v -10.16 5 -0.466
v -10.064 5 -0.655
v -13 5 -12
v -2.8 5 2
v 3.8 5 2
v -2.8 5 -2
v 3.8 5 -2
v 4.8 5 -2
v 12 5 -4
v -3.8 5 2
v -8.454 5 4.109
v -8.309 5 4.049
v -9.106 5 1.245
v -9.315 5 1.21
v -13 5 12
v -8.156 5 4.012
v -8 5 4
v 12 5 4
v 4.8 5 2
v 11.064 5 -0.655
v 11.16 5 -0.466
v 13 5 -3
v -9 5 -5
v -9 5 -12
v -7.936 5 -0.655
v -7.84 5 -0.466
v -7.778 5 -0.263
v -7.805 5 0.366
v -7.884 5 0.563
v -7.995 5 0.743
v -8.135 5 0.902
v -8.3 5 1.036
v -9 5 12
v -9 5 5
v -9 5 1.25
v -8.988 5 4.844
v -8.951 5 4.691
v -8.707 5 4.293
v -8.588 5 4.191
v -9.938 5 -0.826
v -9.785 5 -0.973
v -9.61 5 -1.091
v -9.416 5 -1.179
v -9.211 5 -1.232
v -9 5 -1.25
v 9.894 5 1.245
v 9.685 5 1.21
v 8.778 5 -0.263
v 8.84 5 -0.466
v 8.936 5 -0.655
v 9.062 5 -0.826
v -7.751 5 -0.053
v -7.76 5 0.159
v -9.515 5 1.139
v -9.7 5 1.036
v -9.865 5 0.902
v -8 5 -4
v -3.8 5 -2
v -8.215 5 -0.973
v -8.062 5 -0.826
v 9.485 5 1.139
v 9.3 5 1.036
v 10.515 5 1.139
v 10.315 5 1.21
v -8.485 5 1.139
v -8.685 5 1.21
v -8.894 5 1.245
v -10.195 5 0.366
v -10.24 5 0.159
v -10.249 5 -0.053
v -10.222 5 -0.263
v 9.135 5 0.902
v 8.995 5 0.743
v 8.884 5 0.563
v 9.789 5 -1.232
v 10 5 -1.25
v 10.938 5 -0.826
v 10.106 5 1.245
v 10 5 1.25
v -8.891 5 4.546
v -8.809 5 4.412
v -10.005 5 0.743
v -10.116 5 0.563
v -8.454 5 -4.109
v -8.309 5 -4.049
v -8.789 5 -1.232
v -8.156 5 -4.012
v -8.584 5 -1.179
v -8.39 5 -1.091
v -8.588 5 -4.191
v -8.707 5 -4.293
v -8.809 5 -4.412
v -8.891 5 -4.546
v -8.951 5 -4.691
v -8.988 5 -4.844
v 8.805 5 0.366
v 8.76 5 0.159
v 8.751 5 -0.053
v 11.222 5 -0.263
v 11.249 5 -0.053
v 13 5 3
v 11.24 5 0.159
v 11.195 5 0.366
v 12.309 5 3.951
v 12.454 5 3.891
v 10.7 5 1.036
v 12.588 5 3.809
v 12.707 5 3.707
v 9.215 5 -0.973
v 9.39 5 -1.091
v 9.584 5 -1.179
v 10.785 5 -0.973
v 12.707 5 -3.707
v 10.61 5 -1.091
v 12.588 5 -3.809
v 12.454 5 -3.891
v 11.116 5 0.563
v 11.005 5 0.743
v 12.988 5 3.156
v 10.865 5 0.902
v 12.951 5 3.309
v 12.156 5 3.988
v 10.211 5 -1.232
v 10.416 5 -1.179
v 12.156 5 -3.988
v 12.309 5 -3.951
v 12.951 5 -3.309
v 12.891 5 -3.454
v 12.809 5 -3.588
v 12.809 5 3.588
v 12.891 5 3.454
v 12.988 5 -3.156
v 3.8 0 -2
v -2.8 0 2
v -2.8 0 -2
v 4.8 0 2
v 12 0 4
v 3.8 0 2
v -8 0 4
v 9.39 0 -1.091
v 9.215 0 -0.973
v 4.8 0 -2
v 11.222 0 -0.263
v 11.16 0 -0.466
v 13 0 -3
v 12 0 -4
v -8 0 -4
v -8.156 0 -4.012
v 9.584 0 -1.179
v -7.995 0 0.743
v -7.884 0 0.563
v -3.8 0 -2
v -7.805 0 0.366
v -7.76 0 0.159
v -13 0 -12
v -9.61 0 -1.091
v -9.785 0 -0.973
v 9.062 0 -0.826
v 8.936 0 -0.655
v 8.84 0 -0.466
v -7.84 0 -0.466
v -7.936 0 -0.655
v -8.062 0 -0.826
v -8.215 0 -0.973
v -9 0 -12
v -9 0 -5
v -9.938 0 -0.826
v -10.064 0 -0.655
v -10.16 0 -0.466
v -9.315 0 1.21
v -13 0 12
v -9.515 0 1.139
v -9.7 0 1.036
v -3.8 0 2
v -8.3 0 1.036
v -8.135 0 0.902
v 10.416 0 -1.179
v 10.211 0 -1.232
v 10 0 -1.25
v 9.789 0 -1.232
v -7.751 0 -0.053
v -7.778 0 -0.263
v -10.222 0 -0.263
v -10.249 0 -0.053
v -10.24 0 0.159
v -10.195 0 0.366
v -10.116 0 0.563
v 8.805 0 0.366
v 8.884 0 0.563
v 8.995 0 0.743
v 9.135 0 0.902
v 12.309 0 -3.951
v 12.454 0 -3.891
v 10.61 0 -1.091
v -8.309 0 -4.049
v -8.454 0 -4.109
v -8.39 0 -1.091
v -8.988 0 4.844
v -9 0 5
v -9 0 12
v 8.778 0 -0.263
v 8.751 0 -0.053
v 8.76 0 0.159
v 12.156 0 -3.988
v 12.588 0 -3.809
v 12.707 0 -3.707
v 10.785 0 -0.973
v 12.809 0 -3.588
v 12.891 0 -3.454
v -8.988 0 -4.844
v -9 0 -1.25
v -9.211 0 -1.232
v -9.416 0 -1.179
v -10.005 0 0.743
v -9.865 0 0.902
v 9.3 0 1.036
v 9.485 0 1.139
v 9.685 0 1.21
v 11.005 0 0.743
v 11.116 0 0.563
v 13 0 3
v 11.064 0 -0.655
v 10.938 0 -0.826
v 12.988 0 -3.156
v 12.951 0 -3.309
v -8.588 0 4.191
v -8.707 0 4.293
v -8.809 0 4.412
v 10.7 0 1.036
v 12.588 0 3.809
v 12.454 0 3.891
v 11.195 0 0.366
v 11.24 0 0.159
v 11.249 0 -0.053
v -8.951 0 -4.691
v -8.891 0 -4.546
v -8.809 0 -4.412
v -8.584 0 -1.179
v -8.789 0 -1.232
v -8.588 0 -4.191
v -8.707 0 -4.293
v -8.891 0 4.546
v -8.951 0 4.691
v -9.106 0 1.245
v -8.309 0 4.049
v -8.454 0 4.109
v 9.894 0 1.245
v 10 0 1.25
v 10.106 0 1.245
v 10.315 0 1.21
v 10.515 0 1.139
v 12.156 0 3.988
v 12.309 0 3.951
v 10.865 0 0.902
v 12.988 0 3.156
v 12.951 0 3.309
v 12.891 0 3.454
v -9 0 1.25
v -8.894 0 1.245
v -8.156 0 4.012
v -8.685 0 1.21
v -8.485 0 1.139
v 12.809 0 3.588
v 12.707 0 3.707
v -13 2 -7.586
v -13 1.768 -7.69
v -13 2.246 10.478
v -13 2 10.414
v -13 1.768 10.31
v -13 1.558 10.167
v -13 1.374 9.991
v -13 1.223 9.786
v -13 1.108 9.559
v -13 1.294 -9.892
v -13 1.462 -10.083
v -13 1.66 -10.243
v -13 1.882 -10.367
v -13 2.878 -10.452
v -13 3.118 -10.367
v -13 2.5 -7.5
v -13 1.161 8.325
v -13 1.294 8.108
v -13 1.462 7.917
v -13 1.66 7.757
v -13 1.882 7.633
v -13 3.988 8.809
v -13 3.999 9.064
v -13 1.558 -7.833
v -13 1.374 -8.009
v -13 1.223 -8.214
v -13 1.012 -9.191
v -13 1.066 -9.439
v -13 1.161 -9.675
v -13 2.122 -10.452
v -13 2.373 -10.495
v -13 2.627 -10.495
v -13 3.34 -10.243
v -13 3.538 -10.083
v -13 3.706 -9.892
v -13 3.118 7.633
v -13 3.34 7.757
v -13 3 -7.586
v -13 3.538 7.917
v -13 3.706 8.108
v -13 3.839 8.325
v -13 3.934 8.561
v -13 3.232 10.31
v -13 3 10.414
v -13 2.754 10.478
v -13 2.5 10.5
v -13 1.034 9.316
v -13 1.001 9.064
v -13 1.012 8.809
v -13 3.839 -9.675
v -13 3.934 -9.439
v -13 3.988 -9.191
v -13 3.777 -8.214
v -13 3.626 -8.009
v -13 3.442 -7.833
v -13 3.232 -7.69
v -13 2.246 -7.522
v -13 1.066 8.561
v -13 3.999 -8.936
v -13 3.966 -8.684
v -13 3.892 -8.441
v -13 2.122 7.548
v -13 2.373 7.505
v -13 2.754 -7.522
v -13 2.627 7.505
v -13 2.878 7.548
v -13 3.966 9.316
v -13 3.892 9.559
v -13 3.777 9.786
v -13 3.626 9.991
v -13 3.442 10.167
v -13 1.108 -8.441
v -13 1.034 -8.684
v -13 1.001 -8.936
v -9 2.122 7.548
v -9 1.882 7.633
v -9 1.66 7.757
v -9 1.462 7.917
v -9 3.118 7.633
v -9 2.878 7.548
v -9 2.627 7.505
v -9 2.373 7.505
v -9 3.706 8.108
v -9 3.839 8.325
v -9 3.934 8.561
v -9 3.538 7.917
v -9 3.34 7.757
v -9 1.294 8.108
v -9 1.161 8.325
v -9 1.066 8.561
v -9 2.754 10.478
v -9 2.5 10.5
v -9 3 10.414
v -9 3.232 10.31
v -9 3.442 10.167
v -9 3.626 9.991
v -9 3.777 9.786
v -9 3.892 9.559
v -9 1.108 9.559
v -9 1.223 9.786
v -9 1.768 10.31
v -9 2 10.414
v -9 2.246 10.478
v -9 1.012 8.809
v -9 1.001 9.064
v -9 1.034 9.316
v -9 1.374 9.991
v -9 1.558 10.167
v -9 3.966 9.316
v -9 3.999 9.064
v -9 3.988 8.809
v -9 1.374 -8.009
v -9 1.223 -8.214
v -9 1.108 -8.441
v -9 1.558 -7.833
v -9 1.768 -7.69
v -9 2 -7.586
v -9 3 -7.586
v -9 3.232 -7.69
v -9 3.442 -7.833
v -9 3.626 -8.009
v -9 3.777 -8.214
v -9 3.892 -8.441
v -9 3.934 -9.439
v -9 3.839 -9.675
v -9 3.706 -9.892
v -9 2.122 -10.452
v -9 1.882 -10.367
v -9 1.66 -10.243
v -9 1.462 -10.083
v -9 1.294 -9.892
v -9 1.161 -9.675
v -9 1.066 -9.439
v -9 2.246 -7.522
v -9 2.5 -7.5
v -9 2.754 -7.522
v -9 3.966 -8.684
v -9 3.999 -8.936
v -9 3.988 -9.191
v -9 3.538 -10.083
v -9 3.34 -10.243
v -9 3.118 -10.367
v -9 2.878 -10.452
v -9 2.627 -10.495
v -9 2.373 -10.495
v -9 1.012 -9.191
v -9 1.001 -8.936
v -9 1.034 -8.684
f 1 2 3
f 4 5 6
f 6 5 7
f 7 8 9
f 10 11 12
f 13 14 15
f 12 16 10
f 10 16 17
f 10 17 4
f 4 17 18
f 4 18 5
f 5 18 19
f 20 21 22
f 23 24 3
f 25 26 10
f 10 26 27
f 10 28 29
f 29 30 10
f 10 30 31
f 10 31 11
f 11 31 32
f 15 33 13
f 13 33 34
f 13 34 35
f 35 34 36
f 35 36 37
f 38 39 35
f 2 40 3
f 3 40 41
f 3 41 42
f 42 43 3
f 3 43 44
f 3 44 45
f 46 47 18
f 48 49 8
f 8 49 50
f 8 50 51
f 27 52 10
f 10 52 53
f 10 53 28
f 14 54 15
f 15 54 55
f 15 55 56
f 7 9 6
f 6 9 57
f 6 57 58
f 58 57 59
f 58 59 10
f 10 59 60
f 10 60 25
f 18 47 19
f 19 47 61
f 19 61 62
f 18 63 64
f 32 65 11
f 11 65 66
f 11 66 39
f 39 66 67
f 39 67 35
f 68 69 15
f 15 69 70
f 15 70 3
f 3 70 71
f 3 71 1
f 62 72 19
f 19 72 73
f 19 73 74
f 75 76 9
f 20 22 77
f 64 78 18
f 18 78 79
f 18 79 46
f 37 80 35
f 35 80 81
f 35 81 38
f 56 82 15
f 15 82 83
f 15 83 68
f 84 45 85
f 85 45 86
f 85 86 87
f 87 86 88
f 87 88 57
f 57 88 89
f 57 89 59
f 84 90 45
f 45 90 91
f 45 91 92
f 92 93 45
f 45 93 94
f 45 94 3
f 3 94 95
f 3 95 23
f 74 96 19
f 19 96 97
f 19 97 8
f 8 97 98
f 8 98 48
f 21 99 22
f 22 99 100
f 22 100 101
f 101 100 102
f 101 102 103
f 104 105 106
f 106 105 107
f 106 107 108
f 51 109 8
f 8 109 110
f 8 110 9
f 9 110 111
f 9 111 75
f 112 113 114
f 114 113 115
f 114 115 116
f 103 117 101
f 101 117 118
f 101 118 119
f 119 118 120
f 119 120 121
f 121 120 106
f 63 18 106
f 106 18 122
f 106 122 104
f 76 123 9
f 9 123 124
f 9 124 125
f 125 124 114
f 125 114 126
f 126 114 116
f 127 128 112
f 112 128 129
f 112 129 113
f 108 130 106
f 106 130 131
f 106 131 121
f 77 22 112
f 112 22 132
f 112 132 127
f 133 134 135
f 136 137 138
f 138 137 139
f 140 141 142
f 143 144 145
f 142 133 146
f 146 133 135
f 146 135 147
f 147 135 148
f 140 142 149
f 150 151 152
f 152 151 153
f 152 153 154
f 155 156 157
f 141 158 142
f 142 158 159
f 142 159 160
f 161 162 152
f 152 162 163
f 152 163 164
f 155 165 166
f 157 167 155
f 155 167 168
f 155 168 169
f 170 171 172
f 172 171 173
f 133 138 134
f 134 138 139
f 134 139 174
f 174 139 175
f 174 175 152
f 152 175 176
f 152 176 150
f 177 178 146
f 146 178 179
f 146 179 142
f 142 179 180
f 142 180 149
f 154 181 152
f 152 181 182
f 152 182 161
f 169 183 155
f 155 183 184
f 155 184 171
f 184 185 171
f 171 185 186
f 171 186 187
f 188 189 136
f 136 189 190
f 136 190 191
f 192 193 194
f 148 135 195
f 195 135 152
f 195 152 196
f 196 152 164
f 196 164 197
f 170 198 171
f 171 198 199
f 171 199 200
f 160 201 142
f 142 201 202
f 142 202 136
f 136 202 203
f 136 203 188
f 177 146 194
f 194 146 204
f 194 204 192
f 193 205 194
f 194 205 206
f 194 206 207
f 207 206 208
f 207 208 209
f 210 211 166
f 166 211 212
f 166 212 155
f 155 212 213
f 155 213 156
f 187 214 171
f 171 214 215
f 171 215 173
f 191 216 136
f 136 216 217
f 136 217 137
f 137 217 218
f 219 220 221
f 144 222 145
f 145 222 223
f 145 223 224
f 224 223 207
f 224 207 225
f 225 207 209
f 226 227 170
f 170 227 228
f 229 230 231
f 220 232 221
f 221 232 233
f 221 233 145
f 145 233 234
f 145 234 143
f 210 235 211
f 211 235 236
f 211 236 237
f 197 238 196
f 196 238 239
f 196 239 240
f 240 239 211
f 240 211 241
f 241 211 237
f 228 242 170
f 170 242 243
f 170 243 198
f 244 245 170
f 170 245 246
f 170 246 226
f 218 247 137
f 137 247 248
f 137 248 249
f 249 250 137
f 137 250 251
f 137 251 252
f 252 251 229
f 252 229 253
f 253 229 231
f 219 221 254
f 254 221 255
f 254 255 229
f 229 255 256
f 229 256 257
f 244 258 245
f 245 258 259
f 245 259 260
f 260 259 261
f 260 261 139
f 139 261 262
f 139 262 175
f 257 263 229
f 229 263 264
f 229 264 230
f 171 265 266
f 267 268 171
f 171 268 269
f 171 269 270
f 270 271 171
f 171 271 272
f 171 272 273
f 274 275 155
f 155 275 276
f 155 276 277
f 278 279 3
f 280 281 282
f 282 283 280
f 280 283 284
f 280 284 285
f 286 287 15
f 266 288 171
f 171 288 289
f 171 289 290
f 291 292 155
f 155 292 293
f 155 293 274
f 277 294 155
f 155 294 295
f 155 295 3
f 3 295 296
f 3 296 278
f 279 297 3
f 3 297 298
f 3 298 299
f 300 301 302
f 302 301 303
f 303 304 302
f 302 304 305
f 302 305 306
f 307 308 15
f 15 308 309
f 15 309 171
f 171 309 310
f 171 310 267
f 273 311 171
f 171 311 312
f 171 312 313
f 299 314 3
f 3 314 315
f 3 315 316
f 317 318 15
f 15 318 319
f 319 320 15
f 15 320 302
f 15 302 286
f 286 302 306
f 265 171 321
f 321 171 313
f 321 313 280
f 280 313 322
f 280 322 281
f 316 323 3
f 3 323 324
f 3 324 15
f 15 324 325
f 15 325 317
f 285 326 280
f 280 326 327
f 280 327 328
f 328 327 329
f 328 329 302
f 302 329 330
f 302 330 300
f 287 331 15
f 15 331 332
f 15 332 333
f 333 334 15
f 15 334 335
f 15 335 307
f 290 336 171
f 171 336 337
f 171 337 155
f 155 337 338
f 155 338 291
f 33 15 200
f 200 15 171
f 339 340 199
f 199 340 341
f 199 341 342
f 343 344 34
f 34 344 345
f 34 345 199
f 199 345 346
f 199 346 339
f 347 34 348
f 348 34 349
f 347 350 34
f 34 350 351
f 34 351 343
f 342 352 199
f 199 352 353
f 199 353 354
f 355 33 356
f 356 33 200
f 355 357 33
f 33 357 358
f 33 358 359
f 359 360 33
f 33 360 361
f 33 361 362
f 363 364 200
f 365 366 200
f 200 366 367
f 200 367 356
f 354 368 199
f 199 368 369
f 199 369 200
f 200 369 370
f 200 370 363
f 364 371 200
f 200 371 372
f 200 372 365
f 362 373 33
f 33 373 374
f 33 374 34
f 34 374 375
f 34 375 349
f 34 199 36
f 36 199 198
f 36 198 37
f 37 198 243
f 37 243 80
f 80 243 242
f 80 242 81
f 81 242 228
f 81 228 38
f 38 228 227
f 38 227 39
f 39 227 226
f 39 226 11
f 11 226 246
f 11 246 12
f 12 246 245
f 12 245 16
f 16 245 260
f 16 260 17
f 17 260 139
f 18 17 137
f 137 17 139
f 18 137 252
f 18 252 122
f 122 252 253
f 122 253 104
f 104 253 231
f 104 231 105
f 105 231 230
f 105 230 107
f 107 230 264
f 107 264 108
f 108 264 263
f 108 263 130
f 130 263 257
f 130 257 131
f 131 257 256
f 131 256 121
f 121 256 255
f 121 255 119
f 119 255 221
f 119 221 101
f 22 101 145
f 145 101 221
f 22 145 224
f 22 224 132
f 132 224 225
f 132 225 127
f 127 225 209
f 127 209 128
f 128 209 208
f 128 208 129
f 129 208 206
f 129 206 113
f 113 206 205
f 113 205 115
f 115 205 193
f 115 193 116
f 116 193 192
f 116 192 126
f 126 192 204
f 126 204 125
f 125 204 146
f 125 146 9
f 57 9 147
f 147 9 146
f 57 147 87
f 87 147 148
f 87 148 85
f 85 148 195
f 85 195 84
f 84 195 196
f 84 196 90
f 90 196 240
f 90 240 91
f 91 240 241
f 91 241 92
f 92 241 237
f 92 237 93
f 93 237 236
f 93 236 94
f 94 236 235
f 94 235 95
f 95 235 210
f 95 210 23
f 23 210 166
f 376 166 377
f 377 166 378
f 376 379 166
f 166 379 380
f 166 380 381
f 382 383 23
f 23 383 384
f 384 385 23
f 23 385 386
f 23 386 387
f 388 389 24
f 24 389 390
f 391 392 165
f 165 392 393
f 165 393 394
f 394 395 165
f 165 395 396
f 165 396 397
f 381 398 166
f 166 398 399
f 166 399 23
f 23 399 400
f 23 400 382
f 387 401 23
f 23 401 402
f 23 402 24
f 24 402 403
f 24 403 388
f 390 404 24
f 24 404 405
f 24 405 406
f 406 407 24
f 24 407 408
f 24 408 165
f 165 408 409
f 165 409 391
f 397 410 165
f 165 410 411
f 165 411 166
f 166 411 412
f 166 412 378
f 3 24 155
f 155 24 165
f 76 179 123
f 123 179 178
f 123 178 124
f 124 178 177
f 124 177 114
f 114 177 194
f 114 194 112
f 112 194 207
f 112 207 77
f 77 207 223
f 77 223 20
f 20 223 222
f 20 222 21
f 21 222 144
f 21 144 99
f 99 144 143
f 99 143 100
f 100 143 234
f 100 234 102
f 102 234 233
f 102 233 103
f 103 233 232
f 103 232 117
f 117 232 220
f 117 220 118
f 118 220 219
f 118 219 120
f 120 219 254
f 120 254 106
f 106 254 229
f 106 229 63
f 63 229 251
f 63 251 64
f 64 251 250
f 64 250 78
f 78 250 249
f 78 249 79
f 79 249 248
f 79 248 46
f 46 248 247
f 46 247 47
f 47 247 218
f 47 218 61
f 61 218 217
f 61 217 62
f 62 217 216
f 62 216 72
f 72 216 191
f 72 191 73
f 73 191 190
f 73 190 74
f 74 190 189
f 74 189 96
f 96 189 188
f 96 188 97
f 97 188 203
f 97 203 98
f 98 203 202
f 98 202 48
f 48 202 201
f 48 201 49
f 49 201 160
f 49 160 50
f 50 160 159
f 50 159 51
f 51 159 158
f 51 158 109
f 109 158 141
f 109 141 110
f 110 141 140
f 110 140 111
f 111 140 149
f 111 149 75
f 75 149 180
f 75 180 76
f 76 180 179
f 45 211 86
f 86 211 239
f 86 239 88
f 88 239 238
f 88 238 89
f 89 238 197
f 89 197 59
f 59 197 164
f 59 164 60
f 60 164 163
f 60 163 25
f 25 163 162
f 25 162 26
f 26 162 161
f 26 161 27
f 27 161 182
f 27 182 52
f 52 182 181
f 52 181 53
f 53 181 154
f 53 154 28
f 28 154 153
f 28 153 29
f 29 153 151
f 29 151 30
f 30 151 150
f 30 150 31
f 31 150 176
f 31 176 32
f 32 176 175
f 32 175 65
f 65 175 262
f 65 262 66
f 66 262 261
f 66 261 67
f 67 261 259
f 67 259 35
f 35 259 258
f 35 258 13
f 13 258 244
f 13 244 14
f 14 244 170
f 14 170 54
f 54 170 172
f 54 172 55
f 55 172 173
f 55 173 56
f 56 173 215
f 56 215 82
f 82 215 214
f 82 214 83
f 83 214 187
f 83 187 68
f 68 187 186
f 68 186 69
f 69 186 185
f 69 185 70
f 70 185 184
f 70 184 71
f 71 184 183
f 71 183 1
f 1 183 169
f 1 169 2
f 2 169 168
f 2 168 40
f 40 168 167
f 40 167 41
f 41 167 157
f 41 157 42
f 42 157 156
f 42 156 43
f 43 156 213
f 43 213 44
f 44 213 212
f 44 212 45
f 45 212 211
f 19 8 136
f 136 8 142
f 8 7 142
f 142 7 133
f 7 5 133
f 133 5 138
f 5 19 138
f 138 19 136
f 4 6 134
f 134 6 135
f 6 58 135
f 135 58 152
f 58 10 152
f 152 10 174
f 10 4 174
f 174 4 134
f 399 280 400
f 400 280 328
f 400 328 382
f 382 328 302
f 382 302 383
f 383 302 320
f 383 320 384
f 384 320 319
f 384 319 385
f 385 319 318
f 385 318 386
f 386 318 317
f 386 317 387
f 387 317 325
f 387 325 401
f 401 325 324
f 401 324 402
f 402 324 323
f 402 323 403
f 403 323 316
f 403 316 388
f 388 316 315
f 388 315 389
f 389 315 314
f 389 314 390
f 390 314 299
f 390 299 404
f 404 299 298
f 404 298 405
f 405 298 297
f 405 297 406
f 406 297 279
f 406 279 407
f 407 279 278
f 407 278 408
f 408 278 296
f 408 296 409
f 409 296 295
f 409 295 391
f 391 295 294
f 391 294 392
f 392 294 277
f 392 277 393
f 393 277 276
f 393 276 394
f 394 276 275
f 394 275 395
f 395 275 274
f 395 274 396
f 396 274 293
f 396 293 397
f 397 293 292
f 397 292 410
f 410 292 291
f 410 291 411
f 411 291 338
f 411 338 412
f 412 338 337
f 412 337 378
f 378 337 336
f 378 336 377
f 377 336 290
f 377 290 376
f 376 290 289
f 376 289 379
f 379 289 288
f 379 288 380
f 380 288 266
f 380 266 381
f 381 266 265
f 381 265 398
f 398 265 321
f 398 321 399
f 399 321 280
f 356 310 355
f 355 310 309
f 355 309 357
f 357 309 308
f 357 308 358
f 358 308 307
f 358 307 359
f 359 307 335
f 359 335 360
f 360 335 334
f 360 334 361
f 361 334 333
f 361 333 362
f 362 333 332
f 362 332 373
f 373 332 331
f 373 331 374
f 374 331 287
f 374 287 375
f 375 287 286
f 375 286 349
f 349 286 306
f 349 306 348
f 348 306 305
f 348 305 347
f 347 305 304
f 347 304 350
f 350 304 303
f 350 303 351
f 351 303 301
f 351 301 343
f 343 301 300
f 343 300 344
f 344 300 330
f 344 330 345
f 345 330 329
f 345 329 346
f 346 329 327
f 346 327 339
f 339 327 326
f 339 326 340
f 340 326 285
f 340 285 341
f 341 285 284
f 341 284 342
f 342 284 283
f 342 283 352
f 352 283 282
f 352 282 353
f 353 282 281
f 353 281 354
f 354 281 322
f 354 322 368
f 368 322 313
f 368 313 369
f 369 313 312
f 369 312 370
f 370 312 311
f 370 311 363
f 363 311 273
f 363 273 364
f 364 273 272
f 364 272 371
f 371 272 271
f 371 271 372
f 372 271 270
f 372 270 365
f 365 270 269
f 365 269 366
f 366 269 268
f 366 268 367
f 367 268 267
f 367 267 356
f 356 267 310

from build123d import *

# Parameters (mm, degrees)
SKETCH1_R           = 1.25
SKETCH1_W           = 1
SKETCH1_H           = 4
BOSS_EXTRUDE1_DEPTH = 5
SKETCH3_R           = 1.5
CUT_EXTRUDE1_DEPTH  = 4


with BuildPart() as part:
    # Sketch1 → Boss-Extrude1 (new body)
    with BuildSketch(Plane(origin=(0, 0, 0), x_dir=(1, 0, 0), z_dir=(0, 1, 0))):
        with BuildLine():
            Line((-13, -3), (-13, -12))
            Line((-13, -12), (-9, -12))
            Line((-9, -12), (-9, -5))
            ThreePointArc((-9, -5), (-8.707106781, -4.292893219), (-8, -4))
            Line((-8, -4), (12, -4))
            ThreePointArc((12, -4), (12.707106781, -3.707106781), (13, -3))
            Line((13, -3), (13, 3))
            ThreePointArc((13, 3), (12.707106781, 3.707106781), (12, 4))
            Line((12, 4), (-8, 4))
            ThreePointArc((-8, 4), (-8.707106781, 4.292893219), (-9, 5))
            Line((-9, 5), (-9, 12))
            Line((-9, 12), (-13, 12))
            Line((-13, 12), (-13, 4))
            Line((-13, 4), (-13, -3))
        make_face()
        with Locations(Location((10, 0, 0), (0, 0, 270))):
            Circle(SKETCH1_R, mode=Mode.SUBTRACT)
        with Locations(Location((-9, 0, 0), (0, 0, 270))):
            Circle(SKETCH1_R, mode=Mode.SUBTRACT)
        with Locations((4.3, 0)):
            Rectangle(SKETCH1_W, SKETCH1_H, mode=Mode.SUBTRACT)
        with Locations((-3.3, 0)):
            Rectangle(SKETCH1_W, SKETCH1_H, mode=Mode.SUBTRACT)
    extrude(amount=BOSS_EXTRUDE1_DEPTH)

    # Sketch3 → Cut-Extrude1 (cut)
    with BuildSketch(Plane.ZY.offset(13)):
        with Locations((9, 2.5)):
            Circle(SKETCH3_R)
        with Locations((-9, 2.5)):
            Circle(SKETCH3_R)
    extrude(amount=-CUT_EXTRUDE1_DEPTH, mode=Mode.SUBTRACT)


solid = part.part
